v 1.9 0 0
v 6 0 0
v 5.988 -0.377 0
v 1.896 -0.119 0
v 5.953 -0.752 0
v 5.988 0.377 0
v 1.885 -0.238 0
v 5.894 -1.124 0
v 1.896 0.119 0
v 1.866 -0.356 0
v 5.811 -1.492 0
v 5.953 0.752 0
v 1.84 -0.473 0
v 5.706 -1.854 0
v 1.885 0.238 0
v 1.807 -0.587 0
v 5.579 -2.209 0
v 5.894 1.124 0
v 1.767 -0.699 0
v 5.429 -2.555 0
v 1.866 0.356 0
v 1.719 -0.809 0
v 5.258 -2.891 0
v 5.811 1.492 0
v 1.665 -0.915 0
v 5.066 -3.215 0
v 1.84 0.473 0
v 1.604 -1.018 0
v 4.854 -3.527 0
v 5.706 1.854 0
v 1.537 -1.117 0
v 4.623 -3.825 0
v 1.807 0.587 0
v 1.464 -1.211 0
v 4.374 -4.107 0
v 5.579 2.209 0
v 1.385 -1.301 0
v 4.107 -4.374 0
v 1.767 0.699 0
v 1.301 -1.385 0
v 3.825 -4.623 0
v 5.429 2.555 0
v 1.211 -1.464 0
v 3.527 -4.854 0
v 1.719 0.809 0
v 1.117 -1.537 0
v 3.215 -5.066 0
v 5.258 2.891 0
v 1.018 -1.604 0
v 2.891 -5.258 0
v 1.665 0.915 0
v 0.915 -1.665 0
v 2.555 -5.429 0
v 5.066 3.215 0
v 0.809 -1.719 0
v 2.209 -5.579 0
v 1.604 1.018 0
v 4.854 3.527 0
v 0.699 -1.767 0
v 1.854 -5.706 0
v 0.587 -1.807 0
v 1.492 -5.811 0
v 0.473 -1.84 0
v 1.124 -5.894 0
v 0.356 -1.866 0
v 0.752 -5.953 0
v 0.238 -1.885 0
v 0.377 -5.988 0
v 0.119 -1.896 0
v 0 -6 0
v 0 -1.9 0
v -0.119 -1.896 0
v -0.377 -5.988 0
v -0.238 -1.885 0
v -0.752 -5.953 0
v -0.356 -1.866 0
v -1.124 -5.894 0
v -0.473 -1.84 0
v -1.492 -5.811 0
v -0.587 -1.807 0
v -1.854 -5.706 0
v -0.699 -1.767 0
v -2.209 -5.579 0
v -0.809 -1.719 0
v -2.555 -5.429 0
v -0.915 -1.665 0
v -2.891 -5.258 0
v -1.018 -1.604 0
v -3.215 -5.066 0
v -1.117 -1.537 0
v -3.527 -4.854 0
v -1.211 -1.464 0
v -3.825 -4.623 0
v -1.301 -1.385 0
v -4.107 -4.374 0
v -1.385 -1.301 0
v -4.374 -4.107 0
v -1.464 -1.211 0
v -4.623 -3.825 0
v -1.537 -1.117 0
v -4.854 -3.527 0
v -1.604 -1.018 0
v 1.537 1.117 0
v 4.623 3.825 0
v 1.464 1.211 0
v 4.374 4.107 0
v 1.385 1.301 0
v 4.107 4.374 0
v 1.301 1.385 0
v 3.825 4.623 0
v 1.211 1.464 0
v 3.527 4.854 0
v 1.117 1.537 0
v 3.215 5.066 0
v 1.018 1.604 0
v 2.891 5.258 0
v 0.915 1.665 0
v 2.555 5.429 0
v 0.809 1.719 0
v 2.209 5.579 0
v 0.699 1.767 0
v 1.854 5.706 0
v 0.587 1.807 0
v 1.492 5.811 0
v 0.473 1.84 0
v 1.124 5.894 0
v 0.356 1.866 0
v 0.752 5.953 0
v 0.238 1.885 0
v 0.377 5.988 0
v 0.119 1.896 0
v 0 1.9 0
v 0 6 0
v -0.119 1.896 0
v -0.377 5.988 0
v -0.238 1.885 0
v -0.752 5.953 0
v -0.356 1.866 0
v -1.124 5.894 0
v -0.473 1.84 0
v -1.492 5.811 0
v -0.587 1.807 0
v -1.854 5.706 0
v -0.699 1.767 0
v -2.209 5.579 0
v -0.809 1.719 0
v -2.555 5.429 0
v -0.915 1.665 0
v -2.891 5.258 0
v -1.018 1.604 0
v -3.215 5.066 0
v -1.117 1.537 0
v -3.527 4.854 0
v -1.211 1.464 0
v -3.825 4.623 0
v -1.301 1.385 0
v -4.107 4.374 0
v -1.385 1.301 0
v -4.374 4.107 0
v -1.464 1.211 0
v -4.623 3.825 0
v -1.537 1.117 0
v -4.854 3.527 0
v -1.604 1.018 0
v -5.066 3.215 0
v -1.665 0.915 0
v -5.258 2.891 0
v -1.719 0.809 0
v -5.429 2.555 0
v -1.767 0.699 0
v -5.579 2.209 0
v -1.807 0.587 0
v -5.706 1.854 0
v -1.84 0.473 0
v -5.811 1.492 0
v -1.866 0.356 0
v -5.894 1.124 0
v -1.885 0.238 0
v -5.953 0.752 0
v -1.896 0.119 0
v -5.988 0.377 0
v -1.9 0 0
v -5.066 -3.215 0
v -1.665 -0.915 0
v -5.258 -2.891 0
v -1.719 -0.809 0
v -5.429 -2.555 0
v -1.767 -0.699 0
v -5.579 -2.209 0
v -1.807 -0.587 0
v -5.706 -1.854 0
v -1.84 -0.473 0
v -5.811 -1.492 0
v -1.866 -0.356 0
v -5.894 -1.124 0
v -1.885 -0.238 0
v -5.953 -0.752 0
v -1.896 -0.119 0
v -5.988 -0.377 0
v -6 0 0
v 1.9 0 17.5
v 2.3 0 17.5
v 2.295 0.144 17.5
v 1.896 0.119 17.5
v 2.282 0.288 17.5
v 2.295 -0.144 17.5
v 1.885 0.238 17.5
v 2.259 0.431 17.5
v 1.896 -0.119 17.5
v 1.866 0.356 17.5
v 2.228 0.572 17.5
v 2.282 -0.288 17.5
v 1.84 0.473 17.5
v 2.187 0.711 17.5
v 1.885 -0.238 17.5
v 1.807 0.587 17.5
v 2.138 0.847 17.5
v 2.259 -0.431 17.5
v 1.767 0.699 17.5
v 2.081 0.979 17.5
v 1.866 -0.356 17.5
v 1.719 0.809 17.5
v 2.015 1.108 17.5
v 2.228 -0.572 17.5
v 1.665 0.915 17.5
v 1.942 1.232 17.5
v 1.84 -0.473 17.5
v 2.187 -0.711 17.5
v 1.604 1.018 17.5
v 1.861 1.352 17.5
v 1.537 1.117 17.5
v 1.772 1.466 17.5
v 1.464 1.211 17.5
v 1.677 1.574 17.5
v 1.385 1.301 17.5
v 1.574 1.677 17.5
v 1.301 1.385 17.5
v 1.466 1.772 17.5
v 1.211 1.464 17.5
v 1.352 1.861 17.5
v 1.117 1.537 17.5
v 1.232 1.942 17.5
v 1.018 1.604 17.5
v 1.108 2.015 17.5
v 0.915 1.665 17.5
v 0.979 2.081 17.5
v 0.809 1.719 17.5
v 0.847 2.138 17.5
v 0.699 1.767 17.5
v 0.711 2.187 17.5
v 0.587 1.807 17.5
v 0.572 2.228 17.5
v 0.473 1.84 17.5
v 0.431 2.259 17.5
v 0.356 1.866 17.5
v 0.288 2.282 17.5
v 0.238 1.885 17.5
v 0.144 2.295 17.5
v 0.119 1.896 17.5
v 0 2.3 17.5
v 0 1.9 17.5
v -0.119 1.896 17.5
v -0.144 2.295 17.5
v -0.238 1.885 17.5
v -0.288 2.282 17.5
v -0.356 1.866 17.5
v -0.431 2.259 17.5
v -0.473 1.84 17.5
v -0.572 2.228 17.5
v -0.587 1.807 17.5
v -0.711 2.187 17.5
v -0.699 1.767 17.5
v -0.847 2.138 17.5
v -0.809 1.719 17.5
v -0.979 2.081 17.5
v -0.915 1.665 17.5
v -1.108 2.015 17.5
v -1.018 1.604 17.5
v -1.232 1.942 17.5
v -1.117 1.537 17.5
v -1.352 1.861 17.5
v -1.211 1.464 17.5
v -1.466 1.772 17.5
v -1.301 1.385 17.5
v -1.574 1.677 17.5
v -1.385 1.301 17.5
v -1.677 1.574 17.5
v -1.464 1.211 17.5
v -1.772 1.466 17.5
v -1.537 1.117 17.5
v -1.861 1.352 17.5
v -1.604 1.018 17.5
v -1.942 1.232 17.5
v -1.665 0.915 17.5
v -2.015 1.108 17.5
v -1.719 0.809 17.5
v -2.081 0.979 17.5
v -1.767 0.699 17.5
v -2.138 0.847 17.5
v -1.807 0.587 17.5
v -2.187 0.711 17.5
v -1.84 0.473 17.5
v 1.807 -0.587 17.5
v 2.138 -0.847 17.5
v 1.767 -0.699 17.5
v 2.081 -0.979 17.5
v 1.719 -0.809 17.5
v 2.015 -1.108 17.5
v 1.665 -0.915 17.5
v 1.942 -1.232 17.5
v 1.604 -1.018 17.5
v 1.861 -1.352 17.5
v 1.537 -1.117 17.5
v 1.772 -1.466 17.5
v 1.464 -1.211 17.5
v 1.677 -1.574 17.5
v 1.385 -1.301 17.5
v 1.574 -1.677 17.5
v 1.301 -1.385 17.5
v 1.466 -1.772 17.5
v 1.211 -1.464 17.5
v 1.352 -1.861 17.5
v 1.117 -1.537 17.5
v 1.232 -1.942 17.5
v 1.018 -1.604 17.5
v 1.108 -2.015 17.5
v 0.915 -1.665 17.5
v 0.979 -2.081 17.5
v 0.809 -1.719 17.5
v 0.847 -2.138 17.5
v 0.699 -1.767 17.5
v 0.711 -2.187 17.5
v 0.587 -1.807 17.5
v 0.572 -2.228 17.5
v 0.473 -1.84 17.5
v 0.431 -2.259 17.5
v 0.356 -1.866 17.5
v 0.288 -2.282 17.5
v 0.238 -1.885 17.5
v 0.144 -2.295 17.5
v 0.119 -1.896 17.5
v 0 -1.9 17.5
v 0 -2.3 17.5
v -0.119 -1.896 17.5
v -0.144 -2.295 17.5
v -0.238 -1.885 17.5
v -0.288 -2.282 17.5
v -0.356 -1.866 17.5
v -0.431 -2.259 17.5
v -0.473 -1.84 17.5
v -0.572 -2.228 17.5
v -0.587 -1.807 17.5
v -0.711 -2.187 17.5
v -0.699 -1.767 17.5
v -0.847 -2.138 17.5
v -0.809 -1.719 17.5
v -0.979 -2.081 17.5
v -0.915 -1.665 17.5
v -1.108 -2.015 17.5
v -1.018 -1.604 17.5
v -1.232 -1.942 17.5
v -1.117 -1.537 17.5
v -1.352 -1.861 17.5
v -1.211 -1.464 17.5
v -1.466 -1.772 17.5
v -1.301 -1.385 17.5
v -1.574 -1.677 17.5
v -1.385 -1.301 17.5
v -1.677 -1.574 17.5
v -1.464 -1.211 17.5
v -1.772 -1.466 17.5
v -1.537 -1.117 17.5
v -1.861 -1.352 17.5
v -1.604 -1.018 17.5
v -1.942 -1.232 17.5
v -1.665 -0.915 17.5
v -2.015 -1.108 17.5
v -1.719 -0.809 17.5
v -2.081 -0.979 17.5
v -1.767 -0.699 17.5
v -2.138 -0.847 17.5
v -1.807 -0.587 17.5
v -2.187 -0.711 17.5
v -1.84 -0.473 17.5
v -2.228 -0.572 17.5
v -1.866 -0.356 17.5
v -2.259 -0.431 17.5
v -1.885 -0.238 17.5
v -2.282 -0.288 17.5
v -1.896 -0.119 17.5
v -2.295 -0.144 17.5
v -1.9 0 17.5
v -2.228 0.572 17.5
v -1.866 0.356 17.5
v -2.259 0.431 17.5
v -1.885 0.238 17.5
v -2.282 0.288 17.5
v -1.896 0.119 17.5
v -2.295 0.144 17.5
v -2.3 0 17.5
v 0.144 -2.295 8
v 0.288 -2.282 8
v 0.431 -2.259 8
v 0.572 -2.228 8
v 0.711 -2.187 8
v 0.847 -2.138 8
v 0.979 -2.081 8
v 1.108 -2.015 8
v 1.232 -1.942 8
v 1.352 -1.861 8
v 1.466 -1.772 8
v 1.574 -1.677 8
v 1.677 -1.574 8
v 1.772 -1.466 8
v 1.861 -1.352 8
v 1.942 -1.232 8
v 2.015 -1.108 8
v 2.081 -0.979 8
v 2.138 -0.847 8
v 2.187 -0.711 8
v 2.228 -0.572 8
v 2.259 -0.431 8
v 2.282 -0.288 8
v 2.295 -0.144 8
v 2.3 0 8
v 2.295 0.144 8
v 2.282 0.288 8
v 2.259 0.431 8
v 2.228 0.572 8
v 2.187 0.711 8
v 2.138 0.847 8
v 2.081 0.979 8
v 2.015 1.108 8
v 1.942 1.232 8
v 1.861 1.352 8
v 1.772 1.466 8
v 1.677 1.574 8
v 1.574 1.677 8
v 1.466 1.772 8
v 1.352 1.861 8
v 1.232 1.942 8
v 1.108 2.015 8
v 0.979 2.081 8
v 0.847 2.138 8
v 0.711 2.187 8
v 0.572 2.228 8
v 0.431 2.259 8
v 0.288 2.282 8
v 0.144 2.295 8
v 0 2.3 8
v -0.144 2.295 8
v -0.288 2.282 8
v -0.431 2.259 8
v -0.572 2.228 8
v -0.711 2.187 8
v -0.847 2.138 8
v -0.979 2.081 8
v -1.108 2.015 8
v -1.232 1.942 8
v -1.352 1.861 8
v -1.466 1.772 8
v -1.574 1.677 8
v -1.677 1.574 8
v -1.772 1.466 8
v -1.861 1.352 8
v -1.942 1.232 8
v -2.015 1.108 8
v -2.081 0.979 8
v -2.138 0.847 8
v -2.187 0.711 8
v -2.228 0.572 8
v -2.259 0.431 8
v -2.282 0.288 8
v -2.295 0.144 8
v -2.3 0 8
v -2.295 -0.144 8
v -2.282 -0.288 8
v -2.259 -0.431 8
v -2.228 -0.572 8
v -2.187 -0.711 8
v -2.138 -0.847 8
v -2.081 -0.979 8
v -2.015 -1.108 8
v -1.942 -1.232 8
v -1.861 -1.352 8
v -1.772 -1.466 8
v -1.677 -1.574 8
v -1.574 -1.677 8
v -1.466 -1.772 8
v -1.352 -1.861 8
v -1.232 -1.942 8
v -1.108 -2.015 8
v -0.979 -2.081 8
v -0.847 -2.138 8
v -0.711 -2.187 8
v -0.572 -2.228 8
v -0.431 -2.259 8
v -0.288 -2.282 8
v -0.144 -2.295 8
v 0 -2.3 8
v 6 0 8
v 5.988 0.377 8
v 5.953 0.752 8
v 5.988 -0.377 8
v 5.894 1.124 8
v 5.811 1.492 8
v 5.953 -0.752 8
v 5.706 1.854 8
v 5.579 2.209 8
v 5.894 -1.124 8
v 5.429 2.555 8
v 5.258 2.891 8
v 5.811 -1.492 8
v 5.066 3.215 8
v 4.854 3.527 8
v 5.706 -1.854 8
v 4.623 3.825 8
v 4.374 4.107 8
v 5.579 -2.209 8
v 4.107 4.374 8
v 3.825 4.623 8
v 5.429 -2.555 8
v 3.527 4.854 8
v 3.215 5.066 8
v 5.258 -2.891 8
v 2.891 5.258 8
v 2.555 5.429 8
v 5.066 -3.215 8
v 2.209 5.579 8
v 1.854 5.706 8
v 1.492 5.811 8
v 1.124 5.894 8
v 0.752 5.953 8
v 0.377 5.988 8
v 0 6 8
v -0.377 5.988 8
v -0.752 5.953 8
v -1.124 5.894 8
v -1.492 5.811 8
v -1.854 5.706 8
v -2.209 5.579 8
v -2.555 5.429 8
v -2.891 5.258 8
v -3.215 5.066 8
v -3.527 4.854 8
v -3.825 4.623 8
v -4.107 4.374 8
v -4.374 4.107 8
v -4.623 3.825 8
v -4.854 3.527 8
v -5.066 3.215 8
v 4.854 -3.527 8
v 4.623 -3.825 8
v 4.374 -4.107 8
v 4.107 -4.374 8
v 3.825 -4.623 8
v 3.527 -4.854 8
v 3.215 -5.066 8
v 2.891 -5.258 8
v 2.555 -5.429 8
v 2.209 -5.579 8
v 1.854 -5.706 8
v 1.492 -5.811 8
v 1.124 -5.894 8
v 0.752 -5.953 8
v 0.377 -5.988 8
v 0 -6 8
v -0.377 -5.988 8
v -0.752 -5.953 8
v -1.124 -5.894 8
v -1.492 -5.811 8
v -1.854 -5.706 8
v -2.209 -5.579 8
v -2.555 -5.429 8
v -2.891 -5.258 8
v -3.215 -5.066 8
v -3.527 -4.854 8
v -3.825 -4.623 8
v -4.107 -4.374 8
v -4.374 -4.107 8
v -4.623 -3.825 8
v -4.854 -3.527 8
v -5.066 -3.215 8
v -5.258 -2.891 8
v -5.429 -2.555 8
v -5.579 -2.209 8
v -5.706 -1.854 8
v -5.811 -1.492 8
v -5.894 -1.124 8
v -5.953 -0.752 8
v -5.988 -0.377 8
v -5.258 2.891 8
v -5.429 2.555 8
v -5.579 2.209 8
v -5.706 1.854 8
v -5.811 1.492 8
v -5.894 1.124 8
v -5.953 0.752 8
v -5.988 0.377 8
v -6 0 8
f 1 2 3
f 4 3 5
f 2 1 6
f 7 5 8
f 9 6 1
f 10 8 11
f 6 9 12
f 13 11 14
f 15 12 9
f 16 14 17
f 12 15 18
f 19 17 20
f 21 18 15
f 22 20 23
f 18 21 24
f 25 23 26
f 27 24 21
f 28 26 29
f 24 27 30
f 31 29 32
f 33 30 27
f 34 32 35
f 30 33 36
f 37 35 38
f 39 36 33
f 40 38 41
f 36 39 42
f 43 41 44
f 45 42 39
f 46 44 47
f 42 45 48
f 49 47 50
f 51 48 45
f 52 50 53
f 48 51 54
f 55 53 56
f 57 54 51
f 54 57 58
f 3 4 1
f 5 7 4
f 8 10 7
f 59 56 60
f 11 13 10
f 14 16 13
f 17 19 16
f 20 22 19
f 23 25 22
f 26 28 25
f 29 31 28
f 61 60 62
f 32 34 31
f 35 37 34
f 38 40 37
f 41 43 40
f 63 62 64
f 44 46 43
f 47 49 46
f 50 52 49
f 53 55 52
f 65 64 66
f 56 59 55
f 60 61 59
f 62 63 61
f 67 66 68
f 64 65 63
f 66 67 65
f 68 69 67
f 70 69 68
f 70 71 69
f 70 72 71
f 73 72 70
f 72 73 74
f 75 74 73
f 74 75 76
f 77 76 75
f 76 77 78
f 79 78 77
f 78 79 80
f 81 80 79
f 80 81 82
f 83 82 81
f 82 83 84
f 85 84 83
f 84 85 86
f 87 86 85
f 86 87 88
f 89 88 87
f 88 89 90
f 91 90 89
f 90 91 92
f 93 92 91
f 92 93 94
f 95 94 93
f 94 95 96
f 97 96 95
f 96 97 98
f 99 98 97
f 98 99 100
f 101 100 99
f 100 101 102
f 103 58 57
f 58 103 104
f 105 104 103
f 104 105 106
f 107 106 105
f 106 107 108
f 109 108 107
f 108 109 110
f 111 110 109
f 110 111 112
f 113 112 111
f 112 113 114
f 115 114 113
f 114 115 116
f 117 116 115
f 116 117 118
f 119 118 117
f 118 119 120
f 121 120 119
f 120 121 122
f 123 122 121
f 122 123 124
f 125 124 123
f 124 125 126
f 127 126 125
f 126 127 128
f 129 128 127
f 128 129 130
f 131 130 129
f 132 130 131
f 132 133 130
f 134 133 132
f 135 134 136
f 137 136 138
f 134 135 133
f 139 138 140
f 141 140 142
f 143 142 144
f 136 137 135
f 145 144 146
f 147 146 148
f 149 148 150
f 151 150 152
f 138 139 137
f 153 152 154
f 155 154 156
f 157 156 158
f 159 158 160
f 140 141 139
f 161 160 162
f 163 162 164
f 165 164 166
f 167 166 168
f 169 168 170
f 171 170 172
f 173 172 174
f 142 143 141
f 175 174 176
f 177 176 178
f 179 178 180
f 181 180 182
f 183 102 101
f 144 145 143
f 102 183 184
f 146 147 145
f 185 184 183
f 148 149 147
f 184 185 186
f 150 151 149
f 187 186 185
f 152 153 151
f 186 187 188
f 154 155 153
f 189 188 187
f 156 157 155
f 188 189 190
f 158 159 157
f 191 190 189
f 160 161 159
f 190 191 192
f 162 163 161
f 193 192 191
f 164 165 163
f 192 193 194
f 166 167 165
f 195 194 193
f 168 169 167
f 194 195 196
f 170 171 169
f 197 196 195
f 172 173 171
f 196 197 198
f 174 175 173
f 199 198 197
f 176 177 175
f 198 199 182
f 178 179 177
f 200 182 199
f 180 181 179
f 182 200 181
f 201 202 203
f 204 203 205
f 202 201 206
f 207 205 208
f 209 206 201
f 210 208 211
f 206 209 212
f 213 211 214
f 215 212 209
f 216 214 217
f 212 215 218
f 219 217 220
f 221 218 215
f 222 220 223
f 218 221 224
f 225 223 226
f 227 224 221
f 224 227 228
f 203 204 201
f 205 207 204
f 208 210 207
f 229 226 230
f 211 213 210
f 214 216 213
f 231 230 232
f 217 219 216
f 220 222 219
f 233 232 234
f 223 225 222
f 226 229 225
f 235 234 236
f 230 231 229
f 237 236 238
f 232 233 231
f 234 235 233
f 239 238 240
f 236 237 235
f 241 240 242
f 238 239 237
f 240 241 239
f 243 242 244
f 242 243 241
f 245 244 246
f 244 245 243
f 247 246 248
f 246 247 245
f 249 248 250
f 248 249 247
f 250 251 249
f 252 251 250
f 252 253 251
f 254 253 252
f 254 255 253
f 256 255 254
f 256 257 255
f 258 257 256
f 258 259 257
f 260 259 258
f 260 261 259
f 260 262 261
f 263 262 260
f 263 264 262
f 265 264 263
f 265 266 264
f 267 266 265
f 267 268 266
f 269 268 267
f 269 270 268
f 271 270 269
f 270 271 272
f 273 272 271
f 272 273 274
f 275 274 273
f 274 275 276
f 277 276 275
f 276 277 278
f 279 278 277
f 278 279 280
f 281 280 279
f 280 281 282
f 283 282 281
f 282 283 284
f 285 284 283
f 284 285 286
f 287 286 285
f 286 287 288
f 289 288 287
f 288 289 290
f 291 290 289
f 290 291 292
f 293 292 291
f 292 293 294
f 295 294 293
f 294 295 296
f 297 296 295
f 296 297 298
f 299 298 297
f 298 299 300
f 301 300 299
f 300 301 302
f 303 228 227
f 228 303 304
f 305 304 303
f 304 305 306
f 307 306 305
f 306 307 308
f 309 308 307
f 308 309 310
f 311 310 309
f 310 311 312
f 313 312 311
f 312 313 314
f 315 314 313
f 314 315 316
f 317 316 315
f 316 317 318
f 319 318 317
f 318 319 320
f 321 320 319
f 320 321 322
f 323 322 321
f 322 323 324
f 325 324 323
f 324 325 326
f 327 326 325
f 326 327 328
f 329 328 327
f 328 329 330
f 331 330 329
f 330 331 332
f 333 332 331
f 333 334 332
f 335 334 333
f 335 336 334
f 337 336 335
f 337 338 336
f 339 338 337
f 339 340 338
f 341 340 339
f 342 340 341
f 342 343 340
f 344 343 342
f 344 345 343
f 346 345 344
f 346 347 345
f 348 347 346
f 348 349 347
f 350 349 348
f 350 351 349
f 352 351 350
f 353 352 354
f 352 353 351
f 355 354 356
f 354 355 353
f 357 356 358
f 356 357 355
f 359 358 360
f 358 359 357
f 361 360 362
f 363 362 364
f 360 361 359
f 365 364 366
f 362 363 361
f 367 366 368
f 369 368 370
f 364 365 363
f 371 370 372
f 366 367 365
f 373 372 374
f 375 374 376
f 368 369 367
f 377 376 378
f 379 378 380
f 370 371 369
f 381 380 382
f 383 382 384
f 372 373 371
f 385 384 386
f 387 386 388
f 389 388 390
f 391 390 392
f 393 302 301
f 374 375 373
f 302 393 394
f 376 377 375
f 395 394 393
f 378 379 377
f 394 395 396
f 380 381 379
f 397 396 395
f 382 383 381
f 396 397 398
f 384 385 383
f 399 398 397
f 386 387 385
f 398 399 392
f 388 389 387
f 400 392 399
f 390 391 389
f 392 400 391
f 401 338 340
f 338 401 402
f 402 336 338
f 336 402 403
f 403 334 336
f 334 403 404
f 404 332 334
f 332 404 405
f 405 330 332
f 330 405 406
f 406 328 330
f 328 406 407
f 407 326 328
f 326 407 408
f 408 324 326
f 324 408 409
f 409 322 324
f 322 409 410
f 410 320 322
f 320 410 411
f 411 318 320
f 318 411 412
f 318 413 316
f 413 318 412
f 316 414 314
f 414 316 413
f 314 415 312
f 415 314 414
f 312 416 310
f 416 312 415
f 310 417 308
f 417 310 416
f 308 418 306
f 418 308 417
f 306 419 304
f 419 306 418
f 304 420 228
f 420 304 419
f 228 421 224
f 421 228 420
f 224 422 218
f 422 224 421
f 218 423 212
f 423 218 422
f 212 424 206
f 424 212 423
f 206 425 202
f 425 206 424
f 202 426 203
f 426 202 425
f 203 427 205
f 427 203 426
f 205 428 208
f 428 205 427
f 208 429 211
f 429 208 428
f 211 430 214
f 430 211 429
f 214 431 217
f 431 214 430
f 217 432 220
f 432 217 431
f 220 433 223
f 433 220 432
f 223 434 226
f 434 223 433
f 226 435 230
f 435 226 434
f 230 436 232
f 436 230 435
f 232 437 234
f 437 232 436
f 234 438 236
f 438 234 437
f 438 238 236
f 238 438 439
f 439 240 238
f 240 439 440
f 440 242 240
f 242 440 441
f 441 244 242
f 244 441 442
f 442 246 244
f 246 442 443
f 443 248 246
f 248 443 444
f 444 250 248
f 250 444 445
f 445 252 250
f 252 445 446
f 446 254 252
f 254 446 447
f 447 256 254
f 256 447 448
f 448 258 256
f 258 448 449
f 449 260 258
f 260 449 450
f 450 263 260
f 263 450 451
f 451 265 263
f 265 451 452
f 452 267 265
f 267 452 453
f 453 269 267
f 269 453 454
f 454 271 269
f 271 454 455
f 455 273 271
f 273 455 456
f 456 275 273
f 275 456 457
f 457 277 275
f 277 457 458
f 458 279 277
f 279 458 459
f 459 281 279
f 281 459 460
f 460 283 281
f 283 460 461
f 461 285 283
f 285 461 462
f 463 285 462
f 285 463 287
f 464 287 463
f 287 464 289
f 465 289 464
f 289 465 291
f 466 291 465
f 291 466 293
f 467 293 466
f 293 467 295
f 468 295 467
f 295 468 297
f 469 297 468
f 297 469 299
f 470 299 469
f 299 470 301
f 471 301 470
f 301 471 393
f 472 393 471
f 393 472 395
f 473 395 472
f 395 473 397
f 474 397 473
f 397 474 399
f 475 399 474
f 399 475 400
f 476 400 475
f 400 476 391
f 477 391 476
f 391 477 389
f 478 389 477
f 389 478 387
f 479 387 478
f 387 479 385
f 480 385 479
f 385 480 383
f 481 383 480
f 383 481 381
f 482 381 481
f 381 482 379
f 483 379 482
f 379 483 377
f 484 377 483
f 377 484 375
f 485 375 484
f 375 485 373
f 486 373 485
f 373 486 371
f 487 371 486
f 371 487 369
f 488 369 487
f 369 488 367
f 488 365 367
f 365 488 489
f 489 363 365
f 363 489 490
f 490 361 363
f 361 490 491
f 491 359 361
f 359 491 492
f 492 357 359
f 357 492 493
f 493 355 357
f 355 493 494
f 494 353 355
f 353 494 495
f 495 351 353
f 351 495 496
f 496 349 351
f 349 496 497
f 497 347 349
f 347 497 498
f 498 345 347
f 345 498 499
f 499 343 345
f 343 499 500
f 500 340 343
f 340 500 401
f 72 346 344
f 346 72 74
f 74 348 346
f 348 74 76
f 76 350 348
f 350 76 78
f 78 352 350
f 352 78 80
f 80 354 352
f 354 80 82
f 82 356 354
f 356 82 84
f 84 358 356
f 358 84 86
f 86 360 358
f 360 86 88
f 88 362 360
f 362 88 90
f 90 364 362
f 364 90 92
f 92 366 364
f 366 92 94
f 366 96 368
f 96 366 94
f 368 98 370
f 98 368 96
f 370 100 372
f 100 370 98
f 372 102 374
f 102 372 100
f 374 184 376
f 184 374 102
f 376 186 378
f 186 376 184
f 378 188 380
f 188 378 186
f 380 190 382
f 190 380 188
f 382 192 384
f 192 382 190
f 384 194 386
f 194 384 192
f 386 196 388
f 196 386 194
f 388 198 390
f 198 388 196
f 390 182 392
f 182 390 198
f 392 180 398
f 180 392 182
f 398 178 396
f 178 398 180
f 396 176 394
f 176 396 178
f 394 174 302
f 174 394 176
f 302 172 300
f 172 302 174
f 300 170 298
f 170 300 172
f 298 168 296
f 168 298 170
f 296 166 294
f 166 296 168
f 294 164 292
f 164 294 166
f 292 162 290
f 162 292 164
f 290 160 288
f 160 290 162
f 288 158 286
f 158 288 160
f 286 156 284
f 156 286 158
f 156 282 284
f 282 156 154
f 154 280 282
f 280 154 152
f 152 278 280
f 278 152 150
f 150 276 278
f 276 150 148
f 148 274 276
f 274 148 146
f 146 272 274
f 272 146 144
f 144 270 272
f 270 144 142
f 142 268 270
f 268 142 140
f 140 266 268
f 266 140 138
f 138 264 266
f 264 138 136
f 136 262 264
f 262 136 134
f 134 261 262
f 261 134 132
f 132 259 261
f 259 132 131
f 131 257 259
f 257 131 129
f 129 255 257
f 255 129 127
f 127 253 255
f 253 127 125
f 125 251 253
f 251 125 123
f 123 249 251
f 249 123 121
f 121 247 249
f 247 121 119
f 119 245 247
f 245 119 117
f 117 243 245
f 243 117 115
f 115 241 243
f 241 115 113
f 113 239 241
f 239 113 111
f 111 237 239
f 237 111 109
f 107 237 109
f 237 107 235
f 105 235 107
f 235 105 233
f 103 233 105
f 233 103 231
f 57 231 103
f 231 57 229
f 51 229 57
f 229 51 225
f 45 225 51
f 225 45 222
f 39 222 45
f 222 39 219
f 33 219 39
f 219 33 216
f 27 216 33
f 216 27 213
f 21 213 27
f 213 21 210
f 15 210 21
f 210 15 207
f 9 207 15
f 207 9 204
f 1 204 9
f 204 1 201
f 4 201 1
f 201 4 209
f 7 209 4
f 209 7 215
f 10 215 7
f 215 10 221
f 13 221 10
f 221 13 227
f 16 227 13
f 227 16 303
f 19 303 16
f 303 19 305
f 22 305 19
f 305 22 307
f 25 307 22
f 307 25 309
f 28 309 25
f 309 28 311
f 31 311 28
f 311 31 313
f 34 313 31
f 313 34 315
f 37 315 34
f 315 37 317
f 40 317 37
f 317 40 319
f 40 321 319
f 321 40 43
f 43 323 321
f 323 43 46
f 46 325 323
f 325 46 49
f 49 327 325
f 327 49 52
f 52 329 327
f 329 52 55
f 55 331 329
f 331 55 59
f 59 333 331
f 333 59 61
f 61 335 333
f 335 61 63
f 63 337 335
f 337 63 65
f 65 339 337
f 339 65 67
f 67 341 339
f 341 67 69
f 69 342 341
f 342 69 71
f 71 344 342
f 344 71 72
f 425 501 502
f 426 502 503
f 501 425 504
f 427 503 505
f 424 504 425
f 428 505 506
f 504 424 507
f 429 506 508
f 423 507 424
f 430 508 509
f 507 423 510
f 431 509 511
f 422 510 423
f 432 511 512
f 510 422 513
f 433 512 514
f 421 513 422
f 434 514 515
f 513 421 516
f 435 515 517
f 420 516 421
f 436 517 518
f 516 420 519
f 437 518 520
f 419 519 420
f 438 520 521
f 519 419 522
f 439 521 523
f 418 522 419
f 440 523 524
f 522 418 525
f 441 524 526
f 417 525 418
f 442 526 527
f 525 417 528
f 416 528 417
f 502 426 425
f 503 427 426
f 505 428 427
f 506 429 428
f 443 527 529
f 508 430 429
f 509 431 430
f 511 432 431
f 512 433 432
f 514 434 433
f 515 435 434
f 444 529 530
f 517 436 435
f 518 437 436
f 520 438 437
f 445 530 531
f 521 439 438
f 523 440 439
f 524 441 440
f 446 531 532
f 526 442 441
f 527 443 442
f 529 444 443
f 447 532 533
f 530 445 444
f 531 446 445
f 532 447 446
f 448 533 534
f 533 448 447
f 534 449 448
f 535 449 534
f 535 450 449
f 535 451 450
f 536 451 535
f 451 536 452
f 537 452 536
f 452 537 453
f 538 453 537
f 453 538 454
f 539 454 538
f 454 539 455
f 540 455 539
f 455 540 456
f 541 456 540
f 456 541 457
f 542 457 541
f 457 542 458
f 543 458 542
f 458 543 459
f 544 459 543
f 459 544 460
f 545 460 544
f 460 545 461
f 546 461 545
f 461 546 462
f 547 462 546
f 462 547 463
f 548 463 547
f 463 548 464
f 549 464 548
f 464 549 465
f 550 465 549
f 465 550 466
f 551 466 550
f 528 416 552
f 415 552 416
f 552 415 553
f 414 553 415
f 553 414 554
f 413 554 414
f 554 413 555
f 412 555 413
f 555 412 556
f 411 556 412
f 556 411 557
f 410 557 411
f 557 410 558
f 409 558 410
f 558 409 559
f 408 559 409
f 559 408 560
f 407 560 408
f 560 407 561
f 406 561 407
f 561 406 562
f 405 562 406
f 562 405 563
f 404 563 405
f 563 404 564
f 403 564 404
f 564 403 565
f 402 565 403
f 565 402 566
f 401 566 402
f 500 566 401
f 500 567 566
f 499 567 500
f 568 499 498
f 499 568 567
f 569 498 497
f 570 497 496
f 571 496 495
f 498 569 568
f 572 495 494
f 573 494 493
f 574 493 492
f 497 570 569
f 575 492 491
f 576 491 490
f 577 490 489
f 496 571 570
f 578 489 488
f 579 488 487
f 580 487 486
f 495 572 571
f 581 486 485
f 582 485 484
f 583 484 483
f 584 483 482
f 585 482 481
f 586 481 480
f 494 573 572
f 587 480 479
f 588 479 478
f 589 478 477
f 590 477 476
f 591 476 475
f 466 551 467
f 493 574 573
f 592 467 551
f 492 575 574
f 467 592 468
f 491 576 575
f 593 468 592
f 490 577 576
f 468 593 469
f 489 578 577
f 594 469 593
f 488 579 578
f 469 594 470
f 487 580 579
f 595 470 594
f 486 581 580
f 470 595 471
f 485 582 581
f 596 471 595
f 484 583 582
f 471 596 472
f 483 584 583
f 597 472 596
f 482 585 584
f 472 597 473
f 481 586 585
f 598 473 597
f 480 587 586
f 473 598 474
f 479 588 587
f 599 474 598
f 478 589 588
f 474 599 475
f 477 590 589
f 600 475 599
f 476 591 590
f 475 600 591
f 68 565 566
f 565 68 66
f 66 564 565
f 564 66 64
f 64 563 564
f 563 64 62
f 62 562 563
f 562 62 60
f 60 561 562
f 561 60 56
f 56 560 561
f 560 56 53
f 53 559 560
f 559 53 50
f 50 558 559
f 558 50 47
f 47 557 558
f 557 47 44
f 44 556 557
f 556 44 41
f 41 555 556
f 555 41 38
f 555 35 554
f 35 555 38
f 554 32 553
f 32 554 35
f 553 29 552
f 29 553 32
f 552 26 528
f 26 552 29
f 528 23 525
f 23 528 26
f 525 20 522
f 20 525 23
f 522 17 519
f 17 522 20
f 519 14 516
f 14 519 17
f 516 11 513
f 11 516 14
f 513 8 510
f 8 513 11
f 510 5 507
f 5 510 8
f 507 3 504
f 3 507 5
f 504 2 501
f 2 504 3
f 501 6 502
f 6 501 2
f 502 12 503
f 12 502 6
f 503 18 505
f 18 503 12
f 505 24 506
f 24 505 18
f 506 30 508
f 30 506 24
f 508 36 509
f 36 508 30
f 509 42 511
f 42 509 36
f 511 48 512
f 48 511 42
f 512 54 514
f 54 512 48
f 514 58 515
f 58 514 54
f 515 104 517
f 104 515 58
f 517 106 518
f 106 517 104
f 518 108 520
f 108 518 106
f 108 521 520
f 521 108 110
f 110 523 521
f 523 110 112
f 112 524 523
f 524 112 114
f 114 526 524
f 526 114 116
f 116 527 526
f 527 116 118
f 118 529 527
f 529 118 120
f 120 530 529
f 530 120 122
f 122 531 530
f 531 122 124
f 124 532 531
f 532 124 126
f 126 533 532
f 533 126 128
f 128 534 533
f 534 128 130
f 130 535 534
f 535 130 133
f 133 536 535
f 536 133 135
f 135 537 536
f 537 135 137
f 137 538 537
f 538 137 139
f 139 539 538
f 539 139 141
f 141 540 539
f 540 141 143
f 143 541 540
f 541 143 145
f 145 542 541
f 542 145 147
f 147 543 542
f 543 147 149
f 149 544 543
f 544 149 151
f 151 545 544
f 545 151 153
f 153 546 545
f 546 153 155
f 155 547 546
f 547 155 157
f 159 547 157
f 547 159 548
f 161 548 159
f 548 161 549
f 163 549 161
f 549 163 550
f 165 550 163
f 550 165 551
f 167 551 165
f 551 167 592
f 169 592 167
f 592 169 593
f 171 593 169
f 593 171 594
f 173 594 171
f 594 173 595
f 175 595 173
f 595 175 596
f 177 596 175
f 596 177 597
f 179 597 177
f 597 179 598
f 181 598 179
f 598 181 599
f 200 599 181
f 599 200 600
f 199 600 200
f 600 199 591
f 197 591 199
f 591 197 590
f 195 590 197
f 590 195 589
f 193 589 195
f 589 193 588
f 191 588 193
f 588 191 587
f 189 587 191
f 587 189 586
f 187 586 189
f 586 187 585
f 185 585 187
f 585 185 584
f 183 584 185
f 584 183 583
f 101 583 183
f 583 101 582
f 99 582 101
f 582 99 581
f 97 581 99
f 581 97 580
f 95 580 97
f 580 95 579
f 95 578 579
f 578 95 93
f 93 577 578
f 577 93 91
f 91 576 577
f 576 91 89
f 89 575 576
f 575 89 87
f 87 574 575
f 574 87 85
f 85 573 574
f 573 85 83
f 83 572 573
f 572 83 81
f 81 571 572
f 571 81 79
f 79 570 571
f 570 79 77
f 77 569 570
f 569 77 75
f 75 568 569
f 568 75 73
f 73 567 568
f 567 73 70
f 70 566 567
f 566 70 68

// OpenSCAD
$fn=100;

linear_extrude (17.5)
    difference () {
        circle (2.3);
        circle (1.9);
    }
linear_extrude (8)
    difference () {
        circle (6);
        circle (1.9);
    }
